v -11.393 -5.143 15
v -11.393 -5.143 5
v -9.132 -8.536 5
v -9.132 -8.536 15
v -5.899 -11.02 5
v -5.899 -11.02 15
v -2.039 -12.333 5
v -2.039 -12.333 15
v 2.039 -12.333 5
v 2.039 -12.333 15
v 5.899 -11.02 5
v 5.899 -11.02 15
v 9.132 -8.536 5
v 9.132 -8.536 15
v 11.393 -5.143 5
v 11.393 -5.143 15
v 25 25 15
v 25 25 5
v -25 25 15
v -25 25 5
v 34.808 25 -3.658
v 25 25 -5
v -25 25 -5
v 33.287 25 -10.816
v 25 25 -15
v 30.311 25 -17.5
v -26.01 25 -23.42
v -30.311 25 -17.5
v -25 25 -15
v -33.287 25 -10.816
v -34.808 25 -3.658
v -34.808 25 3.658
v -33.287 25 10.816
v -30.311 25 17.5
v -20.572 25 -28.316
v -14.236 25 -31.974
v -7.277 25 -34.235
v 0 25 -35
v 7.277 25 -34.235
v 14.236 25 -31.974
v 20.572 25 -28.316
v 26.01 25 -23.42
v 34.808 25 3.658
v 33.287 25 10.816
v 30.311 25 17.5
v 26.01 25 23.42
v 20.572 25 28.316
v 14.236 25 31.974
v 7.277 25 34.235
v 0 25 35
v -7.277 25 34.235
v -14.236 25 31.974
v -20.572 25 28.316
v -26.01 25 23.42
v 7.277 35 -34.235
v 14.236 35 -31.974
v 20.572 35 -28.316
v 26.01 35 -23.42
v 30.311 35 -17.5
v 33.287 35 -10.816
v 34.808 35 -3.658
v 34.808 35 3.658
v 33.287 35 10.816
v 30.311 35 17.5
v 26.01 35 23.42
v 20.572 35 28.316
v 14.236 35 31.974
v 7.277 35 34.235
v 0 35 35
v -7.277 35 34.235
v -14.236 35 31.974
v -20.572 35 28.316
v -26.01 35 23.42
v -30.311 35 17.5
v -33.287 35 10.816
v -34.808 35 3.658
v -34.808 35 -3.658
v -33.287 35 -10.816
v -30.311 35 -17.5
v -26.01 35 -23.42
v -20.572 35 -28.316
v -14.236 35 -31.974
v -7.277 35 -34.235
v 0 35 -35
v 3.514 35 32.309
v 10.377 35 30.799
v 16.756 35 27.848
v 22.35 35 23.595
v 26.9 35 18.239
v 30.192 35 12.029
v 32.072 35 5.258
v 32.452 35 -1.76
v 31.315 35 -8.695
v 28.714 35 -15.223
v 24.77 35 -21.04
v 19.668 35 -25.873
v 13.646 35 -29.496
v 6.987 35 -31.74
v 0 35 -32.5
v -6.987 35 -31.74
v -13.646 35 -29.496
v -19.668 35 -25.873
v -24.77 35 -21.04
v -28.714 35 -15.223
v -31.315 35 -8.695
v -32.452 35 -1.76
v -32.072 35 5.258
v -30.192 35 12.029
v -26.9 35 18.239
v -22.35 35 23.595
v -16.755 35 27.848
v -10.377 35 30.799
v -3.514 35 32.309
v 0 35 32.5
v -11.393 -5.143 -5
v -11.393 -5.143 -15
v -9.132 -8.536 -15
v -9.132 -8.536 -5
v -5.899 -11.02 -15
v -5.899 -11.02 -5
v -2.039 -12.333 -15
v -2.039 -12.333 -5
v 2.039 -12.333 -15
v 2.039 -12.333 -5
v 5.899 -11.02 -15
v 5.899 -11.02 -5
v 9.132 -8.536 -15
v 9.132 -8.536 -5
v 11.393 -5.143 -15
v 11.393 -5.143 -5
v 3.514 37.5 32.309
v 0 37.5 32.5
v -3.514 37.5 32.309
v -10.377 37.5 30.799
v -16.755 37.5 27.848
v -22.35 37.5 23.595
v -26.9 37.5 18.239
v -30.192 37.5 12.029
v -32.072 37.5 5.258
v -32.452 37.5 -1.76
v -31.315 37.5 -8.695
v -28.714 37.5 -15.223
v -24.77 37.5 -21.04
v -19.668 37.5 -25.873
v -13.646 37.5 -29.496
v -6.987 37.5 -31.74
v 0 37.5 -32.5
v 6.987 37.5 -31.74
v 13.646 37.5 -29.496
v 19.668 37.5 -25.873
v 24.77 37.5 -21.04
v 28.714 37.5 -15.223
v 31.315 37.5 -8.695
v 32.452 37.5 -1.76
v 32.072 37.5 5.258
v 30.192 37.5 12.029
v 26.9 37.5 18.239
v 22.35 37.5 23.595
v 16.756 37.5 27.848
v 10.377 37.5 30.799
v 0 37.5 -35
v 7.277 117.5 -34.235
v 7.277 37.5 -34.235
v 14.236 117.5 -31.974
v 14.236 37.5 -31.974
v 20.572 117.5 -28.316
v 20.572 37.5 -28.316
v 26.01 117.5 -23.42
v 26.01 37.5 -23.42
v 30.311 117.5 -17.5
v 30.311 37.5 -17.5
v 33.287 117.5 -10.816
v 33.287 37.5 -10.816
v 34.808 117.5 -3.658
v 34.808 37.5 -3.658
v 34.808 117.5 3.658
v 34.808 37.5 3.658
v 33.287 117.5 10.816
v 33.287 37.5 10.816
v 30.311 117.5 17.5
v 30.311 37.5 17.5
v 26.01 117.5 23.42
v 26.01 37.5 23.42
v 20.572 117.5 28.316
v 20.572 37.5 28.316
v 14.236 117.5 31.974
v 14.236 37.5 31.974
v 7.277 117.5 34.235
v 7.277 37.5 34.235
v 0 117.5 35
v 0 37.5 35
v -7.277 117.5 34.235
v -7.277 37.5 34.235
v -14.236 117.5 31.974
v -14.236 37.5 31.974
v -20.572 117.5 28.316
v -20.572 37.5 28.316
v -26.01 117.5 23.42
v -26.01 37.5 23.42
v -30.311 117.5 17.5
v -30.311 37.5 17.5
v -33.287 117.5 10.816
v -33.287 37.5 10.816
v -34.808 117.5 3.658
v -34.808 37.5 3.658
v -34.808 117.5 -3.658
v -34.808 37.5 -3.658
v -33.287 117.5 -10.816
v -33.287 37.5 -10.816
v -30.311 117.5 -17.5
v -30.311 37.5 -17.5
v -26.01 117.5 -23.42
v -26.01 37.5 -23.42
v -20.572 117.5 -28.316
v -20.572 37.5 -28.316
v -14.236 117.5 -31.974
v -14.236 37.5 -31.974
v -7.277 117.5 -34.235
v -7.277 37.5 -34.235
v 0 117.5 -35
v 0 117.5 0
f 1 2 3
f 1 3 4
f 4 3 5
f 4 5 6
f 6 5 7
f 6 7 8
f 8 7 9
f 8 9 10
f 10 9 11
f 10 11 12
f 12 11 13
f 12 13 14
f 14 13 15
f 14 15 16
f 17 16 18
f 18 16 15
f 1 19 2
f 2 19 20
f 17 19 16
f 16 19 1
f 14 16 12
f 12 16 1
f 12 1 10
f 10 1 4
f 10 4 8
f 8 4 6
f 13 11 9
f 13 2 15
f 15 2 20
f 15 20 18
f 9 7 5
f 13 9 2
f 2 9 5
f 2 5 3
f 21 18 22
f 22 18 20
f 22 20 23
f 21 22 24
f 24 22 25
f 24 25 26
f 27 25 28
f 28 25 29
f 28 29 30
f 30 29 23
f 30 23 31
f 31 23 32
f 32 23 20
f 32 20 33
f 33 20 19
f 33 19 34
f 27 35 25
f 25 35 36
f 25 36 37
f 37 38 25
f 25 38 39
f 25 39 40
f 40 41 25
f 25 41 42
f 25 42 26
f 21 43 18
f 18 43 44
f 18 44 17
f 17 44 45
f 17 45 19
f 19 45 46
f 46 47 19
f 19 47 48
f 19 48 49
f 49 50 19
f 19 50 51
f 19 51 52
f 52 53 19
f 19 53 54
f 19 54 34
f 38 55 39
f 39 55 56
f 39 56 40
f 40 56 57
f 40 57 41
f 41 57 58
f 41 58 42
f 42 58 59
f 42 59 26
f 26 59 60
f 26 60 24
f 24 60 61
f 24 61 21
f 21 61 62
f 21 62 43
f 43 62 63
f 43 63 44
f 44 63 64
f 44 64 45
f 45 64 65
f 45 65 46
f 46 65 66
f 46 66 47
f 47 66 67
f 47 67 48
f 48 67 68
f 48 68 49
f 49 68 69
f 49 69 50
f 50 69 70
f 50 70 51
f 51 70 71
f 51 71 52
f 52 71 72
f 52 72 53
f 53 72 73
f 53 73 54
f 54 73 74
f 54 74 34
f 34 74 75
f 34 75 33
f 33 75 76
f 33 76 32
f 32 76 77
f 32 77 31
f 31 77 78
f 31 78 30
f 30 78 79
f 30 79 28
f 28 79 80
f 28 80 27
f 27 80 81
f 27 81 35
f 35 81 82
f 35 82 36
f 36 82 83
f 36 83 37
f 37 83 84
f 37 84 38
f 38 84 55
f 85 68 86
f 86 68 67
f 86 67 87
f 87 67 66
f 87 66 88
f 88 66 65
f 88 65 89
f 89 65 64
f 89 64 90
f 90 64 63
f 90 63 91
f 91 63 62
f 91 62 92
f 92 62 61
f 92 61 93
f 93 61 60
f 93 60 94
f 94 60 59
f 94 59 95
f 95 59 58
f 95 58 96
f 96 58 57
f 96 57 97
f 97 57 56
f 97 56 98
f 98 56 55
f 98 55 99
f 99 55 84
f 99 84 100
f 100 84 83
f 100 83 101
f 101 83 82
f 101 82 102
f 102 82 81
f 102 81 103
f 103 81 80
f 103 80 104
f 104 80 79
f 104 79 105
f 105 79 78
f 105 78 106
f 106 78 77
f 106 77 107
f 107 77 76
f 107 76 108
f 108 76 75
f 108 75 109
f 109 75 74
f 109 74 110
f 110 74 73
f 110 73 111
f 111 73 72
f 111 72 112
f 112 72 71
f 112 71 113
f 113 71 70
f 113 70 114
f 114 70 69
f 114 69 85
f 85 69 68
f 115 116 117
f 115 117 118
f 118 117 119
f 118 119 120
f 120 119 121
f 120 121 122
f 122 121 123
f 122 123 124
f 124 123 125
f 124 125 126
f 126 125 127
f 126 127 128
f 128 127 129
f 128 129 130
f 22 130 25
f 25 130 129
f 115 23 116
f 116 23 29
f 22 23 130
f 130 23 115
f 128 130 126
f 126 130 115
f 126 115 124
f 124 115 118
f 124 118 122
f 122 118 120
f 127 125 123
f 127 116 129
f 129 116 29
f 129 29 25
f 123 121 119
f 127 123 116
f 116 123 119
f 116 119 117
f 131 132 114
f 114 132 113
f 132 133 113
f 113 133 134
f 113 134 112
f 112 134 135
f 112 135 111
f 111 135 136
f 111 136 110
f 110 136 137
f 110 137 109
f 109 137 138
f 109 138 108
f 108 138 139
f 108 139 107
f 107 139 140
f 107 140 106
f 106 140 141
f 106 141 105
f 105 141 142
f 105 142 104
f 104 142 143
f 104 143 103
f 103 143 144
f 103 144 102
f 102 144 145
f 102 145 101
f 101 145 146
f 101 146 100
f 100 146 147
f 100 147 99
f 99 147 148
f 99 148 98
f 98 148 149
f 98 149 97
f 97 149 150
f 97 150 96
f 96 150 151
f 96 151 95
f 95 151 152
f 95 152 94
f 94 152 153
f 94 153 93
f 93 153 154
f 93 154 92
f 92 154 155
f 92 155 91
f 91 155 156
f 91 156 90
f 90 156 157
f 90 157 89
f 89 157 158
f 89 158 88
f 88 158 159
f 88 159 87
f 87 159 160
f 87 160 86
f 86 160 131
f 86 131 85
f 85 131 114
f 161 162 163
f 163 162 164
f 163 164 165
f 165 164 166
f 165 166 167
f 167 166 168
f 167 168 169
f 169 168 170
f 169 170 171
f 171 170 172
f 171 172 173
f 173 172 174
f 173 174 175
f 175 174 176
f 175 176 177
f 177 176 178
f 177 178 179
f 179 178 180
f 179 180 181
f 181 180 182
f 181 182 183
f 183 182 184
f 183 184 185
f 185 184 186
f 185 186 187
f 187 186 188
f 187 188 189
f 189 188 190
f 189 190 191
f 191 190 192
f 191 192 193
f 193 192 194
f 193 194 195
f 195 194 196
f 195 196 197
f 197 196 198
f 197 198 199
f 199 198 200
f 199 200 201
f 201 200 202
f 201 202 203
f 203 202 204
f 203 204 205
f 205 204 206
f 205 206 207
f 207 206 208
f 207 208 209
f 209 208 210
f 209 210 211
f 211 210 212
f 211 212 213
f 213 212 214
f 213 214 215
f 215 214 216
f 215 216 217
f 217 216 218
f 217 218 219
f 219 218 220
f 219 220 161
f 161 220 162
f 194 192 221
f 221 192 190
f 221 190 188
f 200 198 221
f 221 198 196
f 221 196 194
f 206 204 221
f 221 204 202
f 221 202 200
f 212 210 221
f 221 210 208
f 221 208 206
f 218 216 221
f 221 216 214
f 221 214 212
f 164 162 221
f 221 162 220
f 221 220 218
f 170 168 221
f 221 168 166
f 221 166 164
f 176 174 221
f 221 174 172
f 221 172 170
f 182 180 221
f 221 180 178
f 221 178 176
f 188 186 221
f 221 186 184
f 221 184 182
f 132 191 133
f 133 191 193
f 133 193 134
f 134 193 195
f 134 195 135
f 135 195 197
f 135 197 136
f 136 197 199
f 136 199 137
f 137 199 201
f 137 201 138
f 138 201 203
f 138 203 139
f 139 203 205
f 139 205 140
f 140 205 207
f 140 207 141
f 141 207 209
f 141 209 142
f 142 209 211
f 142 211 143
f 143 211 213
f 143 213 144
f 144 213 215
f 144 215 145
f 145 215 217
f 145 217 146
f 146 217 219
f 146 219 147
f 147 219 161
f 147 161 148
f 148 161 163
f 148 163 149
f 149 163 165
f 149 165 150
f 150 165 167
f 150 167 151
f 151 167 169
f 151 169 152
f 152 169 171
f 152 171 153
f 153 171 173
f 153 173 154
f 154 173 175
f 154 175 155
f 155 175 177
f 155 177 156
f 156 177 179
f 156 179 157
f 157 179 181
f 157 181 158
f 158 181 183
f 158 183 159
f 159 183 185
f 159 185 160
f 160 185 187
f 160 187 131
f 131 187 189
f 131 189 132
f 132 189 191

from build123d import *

# Parameters (mm, degrees)
BOSS_EXTRUDE1_START = 5
BOSS_EXTRUDE1_DEPTH = 10
LPATTERN1_COUNT     = 2
LPATTERN1_PITCH     = 20
SKETCH2_R           = 35
SKETCH2_R_2         = 32.5
SKETCH2_W           = 50
SKETCH2_H           = 10
BOSS_EXTRUDE2_DEPTH = 10
BOSS_EXTRUDE3_START = 10
SKETCH2_3_R         = 32.5
BOSS_EXTRUDE3_DEPTH = 2.5
BOSS_EXTRUDE4_START = 12.5
SKETCH2_4_R         = 35
BOSS_EXTRUDE4_DEPTH = 80


with BuildPart() as part:
    # Sketch1 → Boss-Extrude1 (new body)
    with BuildSketch(Plane.XY.offset(BOSS_EXTRUDE1_START)):
        with BuildLine():
            Line((-11.392972847, -5.142972847), (-25, 25))
            Line((-25, 25), (25, 25))
            Line((25, 25), (11.392972847, -5.142972847))
            ThreePointArc((11.392972847, -5.142972847), (0, -12.5), (-11.392972847, -5.142972847))
        make_face()
    extrude(amount=BOSS_EXTRUDE1_DEPTH)


with BuildPart() as lpattern1_1:
    # LPattern1: pattern copy
    add(part.part.moved(Location(Vector(0, 0, -1) * (1 * LPATTERN1_PITCH))))


with BuildPart() as part_1:
    add(part.part)

    add(lpattern1_1.part)  # Boss-Extrude2 merges LPattern1_1
    # Sketch2 → Boss-Extrude2 (add)
    # profile 1 of 3: a face of its own
    with BuildSketch(Plane(origin=(0, 25, 0), x_dir=(1, 0, 0), z_dir=(0, 1, 0))):
        with Locations(Location((0, 0, 0), (0, 0, 270))):
            Circle(SKETCH2_R)
        Circle(SKETCH2_R_2, mode=Mode.SUBTRACT)
    # profile 2 of 3: a face of its own
    with BuildSketch(Plane(origin=(0, 25, 0), x_dir=(1, 0, 0), z_dir=(0, 1, 0))):
        Circle(SKETCH2_R_2)
        with Locations((0, -10)):
            Rectangle(SKETCH2_W, SKETCH2_H, mode=Mode.SUBTRACT)
    # profile 3 of 3: a face of its own
    with BuildSketch(Plane(origin=(0, 25, 0), x_dir=(1, 0, 0), z_dir=(0, 1, 0))):
        with Locations((0, -10)):
            Rectangle(SKETCH2_W, SKETCH2_H)
    extrude(amount=BOSS_EXTRUDE2_DEPTH)

    # Sketch2<3> → Boss-Extrude3 (add)
    with BuildSketch(Plane(origin=(0, 25, 0), x_dir=(1, 0, 0), z_dir=(0, 1, 0)).offset(BOSS_EXTRUDE3_START)):
        with Locations(Location((0, 0, 0), (0, 0, 270))):
            Circle(SKETCH2_3_R)
    extrude(amount=BOSS_EXTRUDE3_DEPTH)

    # Sketch2<4> → Boss-Extrude4 (add)
    with BuildSketch(Plane(origin=(0, 25, 0), x_dir=(1, 0, 0), z_dir=(0, 1, 0)).offset(BOSS_EXTRUDE4_START)):
        with Locations(Location((0, 0, 0), (0, 0, 270))):
            Circle(SKETCH2_4_R)
    extrude(amount=BOSS_EXTRUDE4_DEPTH)


solid = part_1.part
